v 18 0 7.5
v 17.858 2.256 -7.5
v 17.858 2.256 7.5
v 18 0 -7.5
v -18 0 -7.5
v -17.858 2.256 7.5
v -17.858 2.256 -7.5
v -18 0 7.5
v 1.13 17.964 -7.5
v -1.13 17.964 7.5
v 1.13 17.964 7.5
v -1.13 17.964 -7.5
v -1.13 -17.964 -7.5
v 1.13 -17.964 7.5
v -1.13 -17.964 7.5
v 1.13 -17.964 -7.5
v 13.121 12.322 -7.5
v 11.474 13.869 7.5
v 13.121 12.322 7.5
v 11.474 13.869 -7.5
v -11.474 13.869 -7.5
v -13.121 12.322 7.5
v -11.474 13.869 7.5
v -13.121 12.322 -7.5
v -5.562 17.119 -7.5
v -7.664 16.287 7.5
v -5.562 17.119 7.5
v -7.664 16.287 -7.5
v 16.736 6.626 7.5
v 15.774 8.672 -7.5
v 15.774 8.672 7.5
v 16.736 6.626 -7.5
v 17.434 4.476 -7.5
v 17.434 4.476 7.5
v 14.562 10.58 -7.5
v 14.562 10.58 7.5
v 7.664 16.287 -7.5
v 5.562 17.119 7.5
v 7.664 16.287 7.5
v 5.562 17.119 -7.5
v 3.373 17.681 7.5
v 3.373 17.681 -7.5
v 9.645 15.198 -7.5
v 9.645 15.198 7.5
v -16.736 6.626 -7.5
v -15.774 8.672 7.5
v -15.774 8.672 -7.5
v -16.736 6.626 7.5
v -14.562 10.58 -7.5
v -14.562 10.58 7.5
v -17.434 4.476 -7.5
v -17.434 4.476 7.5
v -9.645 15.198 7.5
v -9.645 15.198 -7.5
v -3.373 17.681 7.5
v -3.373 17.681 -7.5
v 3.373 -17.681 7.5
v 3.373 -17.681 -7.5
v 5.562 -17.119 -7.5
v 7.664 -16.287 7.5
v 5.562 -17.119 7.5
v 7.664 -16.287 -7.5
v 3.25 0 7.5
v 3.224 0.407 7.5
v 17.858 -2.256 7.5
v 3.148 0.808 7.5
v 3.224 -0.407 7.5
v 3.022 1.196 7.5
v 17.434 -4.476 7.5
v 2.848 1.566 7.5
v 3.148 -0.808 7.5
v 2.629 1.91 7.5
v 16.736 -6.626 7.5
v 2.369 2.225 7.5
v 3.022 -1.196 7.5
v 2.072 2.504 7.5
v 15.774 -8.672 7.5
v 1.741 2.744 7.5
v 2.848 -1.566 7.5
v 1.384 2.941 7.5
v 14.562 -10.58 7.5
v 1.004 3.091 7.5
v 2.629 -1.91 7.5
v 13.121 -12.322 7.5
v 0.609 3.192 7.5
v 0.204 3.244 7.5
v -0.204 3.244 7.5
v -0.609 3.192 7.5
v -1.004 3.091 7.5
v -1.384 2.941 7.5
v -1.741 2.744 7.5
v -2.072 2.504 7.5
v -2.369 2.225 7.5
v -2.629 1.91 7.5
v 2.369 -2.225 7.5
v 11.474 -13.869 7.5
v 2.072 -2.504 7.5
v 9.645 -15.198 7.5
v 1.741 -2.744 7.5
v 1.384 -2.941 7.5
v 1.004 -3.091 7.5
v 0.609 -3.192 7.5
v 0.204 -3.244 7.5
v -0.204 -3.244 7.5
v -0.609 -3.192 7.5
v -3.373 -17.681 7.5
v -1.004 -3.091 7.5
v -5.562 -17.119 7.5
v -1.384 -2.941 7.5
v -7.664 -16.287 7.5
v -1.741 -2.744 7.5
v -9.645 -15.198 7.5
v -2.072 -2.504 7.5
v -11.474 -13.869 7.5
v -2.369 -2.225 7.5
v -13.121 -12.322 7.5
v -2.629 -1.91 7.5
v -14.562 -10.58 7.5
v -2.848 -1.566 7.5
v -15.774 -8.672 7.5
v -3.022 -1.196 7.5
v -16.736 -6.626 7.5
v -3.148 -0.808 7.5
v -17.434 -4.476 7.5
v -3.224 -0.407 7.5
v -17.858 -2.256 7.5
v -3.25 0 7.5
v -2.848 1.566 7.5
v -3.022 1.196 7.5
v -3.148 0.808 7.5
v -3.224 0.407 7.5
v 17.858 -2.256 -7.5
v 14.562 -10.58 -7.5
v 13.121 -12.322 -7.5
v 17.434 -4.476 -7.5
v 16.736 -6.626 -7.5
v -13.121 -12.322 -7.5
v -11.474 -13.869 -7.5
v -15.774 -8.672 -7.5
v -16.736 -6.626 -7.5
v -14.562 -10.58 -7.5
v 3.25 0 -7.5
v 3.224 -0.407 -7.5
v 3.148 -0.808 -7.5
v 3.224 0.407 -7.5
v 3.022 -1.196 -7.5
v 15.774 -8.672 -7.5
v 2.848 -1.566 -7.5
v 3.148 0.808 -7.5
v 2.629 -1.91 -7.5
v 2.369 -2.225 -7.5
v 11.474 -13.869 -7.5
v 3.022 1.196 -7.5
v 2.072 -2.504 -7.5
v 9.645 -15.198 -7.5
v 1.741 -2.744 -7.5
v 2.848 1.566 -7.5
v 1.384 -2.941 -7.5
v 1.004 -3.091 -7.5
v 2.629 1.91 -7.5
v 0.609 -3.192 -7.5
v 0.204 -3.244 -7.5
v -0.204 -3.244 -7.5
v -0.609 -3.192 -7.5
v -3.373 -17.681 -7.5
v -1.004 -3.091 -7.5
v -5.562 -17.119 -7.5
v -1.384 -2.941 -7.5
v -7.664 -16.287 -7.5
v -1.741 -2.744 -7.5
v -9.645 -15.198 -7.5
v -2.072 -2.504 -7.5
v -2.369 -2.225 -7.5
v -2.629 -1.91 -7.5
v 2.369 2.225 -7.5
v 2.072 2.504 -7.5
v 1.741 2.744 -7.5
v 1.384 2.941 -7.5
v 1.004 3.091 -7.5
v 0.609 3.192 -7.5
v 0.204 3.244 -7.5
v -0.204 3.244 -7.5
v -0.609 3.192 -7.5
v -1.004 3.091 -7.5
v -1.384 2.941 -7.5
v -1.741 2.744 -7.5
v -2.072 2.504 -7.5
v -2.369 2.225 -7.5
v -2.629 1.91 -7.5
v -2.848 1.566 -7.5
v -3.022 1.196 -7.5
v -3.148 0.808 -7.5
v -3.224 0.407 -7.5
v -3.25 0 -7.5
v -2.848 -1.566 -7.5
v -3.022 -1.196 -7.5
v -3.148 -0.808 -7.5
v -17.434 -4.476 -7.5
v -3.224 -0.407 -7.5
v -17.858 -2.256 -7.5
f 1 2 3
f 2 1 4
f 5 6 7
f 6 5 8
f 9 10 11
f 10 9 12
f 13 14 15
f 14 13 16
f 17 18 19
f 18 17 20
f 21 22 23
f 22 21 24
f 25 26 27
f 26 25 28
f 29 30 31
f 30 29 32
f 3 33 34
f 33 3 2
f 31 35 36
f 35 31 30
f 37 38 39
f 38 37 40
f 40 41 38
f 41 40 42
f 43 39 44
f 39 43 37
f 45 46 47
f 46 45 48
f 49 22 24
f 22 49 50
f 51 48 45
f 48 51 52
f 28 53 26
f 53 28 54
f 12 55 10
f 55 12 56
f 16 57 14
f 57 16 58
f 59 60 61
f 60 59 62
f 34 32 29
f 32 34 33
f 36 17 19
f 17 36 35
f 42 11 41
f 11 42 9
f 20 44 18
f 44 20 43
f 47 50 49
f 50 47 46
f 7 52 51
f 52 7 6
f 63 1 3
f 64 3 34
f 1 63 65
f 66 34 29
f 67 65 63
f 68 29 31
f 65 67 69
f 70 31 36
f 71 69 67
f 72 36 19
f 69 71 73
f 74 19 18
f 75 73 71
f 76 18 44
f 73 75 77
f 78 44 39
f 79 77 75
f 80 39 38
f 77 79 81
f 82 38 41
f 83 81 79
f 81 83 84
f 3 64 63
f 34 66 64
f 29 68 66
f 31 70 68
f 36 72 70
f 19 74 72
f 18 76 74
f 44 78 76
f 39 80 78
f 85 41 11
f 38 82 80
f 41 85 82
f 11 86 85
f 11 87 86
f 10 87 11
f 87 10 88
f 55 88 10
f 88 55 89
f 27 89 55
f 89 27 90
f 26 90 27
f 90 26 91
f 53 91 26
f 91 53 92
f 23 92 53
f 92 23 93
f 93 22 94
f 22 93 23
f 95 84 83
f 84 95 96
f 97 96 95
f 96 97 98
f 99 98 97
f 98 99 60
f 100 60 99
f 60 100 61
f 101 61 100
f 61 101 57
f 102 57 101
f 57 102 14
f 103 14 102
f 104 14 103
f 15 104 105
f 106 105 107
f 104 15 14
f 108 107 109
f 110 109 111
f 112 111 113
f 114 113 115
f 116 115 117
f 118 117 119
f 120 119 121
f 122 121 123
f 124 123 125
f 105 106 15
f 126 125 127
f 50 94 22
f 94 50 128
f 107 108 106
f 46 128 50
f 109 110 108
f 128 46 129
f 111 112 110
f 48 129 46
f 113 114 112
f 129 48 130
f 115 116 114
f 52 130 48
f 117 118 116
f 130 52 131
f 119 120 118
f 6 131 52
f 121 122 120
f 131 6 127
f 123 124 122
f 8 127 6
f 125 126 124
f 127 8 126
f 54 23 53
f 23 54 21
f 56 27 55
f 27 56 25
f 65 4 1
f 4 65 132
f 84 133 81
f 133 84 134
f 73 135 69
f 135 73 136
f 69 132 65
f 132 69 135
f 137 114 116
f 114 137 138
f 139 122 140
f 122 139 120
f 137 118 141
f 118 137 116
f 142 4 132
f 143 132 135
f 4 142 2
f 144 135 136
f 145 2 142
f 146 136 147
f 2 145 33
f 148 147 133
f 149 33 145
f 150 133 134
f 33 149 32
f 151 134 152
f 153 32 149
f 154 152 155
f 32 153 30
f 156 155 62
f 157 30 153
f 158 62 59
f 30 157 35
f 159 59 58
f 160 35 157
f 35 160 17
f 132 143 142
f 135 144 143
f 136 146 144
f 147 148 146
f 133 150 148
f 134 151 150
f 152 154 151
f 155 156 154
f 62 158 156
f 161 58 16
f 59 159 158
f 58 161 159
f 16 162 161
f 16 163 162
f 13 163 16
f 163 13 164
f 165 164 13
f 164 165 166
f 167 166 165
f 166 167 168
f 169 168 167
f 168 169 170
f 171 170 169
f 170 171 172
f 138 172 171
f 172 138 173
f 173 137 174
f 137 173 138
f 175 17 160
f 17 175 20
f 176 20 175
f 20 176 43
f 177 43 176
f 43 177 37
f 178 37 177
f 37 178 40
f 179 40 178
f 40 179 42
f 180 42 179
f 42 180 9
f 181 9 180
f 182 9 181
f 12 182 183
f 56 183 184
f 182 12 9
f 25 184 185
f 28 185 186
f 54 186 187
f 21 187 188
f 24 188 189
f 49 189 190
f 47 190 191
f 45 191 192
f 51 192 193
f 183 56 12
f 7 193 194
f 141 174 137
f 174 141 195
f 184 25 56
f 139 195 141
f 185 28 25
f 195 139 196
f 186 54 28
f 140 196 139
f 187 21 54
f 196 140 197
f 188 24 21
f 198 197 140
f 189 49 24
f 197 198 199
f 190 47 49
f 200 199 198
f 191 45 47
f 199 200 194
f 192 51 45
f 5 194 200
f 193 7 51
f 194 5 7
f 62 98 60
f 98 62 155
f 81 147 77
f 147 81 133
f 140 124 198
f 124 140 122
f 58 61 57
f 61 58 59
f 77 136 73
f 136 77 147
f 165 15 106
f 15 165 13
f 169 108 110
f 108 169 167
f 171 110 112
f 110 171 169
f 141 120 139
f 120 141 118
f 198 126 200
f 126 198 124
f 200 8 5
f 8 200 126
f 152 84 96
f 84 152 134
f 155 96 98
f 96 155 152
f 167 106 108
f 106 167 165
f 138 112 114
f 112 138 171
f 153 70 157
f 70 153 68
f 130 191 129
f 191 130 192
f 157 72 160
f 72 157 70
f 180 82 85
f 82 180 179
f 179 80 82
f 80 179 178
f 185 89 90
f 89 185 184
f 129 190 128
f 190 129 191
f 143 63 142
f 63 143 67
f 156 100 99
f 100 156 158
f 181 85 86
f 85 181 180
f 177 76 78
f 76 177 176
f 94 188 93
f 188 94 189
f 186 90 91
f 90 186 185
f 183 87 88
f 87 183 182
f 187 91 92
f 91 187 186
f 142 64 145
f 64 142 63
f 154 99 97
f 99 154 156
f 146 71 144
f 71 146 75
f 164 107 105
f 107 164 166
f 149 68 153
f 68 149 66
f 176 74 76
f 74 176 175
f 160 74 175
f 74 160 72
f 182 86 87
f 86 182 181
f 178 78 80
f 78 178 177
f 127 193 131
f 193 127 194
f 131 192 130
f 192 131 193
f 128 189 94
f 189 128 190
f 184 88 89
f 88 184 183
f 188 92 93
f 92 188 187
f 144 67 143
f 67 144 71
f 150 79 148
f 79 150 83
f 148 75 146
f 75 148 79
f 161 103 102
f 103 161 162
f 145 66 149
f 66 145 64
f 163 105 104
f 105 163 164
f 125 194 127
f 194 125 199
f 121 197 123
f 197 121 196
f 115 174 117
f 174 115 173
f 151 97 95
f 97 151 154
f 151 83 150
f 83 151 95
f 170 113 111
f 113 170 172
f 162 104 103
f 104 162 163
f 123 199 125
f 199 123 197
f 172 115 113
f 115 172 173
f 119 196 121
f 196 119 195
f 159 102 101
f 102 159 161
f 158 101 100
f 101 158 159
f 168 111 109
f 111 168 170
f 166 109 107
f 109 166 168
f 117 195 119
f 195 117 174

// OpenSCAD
$fn = 50;


difference() {
	union() {
		translate(v = [0, 0, -7.5000000000]) {
			cylinder(h = 15, r = 18.0000000000);
		}
	}
	union() {
		translate(v = [0, 0, -100.0000000000]) {
			cylinder(h = 200, r = 3.2500000000);
		}
	}
}
